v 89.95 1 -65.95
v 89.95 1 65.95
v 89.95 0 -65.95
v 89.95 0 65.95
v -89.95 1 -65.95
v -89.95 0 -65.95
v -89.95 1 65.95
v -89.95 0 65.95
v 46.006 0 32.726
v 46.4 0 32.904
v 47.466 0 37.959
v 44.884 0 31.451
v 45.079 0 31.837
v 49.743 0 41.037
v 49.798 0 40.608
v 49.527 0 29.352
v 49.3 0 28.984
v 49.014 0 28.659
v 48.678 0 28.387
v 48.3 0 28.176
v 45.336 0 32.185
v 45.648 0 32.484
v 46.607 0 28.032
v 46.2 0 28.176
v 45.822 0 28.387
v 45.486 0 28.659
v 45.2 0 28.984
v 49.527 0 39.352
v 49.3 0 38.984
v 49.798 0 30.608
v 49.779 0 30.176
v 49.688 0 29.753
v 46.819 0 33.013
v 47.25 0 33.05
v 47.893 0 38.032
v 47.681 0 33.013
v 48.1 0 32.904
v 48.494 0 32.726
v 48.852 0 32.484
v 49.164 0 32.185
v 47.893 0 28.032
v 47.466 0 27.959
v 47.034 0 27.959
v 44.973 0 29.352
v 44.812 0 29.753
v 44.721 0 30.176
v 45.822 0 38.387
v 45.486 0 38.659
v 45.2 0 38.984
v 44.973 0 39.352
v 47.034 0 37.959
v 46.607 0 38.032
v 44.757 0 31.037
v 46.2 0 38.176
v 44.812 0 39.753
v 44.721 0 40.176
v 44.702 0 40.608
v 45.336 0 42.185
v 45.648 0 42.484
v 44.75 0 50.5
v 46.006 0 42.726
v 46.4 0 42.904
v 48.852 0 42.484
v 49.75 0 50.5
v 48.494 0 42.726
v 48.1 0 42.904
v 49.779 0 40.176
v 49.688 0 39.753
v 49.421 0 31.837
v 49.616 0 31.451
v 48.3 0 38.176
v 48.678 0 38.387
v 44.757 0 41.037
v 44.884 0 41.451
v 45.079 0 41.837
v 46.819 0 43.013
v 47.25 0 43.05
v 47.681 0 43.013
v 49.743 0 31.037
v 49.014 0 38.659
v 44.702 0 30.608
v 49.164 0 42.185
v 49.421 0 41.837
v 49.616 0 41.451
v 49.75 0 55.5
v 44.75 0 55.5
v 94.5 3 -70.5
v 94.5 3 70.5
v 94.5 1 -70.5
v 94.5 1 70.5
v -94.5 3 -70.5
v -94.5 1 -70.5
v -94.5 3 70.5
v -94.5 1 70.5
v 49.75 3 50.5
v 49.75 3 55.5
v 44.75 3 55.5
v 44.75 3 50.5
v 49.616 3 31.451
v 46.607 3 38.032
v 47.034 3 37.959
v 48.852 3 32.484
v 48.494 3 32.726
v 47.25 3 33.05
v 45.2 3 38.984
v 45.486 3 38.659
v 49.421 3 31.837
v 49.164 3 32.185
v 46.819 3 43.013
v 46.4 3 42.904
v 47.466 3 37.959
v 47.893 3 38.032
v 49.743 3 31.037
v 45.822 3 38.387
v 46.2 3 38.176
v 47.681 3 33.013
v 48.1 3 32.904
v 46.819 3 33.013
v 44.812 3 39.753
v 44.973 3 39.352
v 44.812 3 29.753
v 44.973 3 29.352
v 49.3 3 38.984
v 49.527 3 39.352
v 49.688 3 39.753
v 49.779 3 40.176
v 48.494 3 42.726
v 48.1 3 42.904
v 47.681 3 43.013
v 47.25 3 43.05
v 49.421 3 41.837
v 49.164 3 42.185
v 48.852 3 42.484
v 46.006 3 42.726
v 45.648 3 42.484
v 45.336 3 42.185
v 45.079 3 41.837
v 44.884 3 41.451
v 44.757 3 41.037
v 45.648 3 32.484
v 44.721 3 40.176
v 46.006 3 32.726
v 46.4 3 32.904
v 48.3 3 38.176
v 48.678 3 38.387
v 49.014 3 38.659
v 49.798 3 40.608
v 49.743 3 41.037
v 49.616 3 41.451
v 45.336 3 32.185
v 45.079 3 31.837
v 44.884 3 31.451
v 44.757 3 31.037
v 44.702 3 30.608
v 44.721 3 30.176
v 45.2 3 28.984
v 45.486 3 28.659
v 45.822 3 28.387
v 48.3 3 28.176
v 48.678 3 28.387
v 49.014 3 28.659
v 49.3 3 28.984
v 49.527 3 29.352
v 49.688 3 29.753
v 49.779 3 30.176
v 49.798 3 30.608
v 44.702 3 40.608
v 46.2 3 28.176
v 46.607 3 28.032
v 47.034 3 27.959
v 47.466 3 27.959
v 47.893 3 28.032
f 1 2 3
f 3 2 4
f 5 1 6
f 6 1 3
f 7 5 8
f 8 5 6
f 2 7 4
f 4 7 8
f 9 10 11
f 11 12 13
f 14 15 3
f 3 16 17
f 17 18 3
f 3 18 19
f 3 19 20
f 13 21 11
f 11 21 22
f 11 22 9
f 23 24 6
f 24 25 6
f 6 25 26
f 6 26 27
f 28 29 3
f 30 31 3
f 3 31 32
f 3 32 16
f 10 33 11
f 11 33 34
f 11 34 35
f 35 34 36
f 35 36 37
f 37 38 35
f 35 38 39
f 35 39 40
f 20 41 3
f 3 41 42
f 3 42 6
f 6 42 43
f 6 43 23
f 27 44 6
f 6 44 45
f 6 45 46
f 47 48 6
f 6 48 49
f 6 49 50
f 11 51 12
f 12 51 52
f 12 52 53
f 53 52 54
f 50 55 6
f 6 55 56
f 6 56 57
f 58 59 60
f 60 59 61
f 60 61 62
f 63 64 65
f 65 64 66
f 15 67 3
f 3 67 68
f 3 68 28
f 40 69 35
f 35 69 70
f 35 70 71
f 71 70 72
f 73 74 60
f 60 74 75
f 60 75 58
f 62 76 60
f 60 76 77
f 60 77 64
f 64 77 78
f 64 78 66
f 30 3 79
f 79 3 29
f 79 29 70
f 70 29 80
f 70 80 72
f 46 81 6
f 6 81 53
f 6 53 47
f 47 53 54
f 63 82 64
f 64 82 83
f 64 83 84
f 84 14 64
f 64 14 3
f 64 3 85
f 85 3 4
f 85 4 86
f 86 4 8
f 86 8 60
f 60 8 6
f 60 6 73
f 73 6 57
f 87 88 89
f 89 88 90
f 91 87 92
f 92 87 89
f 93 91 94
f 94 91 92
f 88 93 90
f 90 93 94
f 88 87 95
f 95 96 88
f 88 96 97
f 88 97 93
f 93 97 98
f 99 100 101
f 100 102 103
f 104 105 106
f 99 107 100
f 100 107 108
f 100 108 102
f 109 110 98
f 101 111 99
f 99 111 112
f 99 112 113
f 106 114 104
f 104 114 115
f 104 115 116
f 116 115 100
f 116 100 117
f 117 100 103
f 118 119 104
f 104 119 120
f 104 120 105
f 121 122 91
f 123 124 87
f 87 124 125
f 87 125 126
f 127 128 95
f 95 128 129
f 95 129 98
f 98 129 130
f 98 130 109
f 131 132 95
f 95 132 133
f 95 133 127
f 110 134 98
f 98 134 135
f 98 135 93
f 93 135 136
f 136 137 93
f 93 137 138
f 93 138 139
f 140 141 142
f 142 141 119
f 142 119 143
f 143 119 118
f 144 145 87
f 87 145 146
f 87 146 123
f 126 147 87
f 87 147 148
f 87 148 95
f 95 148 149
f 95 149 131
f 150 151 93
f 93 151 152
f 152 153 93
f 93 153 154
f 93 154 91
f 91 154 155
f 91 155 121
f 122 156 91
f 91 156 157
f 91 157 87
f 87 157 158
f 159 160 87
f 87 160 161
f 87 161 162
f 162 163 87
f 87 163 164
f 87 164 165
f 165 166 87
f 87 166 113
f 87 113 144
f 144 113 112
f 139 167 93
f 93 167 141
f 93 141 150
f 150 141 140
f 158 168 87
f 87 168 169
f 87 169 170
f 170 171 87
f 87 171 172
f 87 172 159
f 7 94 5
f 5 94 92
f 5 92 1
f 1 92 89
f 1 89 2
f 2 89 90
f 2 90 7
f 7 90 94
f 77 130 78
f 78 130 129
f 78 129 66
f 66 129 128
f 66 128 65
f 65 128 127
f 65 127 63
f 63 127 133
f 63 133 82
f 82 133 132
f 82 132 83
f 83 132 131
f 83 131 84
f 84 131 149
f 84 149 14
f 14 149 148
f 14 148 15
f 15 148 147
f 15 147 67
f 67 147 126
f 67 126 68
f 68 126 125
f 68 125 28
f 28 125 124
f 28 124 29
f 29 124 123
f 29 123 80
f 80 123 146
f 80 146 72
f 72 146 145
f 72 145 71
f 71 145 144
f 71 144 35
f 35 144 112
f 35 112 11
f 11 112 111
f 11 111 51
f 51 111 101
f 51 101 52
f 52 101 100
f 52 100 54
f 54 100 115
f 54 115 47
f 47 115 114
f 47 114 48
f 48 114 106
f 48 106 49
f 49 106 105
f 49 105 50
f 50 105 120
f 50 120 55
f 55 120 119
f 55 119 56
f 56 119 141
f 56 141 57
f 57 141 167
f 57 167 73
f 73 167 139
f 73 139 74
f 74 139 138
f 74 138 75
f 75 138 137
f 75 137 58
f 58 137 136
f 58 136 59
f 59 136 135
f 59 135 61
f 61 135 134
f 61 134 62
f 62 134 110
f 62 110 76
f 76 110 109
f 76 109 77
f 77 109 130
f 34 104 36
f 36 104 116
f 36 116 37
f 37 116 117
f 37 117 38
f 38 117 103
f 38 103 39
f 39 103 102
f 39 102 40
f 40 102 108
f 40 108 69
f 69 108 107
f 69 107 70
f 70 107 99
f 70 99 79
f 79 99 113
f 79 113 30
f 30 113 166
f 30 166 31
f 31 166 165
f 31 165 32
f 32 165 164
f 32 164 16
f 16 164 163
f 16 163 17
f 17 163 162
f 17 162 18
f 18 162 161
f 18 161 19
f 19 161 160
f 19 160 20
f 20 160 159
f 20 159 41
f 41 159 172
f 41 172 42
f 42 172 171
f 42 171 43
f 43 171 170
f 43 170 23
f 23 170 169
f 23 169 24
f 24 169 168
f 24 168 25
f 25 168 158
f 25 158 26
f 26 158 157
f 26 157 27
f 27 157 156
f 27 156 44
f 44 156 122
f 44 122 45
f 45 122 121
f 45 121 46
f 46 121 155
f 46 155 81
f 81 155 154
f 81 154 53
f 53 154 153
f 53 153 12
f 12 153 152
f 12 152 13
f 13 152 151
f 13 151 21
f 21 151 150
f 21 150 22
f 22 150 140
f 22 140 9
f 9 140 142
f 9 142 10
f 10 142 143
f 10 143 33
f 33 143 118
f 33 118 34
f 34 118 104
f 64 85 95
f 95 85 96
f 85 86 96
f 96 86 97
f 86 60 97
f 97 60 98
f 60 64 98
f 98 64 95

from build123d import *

# Parameters (mm, degrees)
ESBO_O1_W                = 179.9
ESBO_O1_H                = 131.9
RESSALTO_EXTRUS_O1_DEPTH = 1
ESBO_O2_W                = 189
ESBO_O2_H                = 141
RESSALTO_EXTRUS_O2_DEPTH = 2
ESBO_O3_R                = 2.55
ESBO_O3_W                = 5
ESBO_O3_H                = 5
CORTE_EXTRUS_O1_DEPTH    = 118.938543318


with BuildPart() as part:
    # Esboço1 → Ressalto-extrusão1 (new body)
    with BuildSketch(Plane(origin=(0, 0, 0), x_dir=(1, 0, 0), z_dir=(0, 1, 0))):
        Rectangle(ESBO_O1_W, ESBO_O1_H)
    extrude(amount=RESSALTO_EXTRUS_O1_DEPTH)

    # Esboço2 → Ressalto-extrusão2 (add)
    with BuildSketch(Plane(origin=(0, 1, 0), x_dir=(1, 0, 0), z_dir=(0, 1, 0))):
        Rectangle(ESBO_O2_W, ESBO_O2_H)
    extrude(amount=RESSALTO_EXTRUS_O2_DEPTH)

    # Esboço3 → Corte-extrusão1 (cut, through all)
    with BuildSketch(Plane(origin=(0, 3, 0), x_dir=(1, 0, 0), z_dir=(0, 1, 0))):
        with Locations(Location((47.25, -40.5, 0), (0, 0, 270))):
            Circle(ESBO_O3_R)
        with Locations(Location((47.25, -30.5, 0), (0, 0, 270))):
            Circle(ESBO_O3_R)
        with Locations((47.25, -53)):
            Rectangle(ESBO_O3_W, ESBO_O3_H)
    extrude(amount=-CORTE_EXTRUS_O1_DEPTH, mode=Mode.SUBTRACT)


solid = part.part
